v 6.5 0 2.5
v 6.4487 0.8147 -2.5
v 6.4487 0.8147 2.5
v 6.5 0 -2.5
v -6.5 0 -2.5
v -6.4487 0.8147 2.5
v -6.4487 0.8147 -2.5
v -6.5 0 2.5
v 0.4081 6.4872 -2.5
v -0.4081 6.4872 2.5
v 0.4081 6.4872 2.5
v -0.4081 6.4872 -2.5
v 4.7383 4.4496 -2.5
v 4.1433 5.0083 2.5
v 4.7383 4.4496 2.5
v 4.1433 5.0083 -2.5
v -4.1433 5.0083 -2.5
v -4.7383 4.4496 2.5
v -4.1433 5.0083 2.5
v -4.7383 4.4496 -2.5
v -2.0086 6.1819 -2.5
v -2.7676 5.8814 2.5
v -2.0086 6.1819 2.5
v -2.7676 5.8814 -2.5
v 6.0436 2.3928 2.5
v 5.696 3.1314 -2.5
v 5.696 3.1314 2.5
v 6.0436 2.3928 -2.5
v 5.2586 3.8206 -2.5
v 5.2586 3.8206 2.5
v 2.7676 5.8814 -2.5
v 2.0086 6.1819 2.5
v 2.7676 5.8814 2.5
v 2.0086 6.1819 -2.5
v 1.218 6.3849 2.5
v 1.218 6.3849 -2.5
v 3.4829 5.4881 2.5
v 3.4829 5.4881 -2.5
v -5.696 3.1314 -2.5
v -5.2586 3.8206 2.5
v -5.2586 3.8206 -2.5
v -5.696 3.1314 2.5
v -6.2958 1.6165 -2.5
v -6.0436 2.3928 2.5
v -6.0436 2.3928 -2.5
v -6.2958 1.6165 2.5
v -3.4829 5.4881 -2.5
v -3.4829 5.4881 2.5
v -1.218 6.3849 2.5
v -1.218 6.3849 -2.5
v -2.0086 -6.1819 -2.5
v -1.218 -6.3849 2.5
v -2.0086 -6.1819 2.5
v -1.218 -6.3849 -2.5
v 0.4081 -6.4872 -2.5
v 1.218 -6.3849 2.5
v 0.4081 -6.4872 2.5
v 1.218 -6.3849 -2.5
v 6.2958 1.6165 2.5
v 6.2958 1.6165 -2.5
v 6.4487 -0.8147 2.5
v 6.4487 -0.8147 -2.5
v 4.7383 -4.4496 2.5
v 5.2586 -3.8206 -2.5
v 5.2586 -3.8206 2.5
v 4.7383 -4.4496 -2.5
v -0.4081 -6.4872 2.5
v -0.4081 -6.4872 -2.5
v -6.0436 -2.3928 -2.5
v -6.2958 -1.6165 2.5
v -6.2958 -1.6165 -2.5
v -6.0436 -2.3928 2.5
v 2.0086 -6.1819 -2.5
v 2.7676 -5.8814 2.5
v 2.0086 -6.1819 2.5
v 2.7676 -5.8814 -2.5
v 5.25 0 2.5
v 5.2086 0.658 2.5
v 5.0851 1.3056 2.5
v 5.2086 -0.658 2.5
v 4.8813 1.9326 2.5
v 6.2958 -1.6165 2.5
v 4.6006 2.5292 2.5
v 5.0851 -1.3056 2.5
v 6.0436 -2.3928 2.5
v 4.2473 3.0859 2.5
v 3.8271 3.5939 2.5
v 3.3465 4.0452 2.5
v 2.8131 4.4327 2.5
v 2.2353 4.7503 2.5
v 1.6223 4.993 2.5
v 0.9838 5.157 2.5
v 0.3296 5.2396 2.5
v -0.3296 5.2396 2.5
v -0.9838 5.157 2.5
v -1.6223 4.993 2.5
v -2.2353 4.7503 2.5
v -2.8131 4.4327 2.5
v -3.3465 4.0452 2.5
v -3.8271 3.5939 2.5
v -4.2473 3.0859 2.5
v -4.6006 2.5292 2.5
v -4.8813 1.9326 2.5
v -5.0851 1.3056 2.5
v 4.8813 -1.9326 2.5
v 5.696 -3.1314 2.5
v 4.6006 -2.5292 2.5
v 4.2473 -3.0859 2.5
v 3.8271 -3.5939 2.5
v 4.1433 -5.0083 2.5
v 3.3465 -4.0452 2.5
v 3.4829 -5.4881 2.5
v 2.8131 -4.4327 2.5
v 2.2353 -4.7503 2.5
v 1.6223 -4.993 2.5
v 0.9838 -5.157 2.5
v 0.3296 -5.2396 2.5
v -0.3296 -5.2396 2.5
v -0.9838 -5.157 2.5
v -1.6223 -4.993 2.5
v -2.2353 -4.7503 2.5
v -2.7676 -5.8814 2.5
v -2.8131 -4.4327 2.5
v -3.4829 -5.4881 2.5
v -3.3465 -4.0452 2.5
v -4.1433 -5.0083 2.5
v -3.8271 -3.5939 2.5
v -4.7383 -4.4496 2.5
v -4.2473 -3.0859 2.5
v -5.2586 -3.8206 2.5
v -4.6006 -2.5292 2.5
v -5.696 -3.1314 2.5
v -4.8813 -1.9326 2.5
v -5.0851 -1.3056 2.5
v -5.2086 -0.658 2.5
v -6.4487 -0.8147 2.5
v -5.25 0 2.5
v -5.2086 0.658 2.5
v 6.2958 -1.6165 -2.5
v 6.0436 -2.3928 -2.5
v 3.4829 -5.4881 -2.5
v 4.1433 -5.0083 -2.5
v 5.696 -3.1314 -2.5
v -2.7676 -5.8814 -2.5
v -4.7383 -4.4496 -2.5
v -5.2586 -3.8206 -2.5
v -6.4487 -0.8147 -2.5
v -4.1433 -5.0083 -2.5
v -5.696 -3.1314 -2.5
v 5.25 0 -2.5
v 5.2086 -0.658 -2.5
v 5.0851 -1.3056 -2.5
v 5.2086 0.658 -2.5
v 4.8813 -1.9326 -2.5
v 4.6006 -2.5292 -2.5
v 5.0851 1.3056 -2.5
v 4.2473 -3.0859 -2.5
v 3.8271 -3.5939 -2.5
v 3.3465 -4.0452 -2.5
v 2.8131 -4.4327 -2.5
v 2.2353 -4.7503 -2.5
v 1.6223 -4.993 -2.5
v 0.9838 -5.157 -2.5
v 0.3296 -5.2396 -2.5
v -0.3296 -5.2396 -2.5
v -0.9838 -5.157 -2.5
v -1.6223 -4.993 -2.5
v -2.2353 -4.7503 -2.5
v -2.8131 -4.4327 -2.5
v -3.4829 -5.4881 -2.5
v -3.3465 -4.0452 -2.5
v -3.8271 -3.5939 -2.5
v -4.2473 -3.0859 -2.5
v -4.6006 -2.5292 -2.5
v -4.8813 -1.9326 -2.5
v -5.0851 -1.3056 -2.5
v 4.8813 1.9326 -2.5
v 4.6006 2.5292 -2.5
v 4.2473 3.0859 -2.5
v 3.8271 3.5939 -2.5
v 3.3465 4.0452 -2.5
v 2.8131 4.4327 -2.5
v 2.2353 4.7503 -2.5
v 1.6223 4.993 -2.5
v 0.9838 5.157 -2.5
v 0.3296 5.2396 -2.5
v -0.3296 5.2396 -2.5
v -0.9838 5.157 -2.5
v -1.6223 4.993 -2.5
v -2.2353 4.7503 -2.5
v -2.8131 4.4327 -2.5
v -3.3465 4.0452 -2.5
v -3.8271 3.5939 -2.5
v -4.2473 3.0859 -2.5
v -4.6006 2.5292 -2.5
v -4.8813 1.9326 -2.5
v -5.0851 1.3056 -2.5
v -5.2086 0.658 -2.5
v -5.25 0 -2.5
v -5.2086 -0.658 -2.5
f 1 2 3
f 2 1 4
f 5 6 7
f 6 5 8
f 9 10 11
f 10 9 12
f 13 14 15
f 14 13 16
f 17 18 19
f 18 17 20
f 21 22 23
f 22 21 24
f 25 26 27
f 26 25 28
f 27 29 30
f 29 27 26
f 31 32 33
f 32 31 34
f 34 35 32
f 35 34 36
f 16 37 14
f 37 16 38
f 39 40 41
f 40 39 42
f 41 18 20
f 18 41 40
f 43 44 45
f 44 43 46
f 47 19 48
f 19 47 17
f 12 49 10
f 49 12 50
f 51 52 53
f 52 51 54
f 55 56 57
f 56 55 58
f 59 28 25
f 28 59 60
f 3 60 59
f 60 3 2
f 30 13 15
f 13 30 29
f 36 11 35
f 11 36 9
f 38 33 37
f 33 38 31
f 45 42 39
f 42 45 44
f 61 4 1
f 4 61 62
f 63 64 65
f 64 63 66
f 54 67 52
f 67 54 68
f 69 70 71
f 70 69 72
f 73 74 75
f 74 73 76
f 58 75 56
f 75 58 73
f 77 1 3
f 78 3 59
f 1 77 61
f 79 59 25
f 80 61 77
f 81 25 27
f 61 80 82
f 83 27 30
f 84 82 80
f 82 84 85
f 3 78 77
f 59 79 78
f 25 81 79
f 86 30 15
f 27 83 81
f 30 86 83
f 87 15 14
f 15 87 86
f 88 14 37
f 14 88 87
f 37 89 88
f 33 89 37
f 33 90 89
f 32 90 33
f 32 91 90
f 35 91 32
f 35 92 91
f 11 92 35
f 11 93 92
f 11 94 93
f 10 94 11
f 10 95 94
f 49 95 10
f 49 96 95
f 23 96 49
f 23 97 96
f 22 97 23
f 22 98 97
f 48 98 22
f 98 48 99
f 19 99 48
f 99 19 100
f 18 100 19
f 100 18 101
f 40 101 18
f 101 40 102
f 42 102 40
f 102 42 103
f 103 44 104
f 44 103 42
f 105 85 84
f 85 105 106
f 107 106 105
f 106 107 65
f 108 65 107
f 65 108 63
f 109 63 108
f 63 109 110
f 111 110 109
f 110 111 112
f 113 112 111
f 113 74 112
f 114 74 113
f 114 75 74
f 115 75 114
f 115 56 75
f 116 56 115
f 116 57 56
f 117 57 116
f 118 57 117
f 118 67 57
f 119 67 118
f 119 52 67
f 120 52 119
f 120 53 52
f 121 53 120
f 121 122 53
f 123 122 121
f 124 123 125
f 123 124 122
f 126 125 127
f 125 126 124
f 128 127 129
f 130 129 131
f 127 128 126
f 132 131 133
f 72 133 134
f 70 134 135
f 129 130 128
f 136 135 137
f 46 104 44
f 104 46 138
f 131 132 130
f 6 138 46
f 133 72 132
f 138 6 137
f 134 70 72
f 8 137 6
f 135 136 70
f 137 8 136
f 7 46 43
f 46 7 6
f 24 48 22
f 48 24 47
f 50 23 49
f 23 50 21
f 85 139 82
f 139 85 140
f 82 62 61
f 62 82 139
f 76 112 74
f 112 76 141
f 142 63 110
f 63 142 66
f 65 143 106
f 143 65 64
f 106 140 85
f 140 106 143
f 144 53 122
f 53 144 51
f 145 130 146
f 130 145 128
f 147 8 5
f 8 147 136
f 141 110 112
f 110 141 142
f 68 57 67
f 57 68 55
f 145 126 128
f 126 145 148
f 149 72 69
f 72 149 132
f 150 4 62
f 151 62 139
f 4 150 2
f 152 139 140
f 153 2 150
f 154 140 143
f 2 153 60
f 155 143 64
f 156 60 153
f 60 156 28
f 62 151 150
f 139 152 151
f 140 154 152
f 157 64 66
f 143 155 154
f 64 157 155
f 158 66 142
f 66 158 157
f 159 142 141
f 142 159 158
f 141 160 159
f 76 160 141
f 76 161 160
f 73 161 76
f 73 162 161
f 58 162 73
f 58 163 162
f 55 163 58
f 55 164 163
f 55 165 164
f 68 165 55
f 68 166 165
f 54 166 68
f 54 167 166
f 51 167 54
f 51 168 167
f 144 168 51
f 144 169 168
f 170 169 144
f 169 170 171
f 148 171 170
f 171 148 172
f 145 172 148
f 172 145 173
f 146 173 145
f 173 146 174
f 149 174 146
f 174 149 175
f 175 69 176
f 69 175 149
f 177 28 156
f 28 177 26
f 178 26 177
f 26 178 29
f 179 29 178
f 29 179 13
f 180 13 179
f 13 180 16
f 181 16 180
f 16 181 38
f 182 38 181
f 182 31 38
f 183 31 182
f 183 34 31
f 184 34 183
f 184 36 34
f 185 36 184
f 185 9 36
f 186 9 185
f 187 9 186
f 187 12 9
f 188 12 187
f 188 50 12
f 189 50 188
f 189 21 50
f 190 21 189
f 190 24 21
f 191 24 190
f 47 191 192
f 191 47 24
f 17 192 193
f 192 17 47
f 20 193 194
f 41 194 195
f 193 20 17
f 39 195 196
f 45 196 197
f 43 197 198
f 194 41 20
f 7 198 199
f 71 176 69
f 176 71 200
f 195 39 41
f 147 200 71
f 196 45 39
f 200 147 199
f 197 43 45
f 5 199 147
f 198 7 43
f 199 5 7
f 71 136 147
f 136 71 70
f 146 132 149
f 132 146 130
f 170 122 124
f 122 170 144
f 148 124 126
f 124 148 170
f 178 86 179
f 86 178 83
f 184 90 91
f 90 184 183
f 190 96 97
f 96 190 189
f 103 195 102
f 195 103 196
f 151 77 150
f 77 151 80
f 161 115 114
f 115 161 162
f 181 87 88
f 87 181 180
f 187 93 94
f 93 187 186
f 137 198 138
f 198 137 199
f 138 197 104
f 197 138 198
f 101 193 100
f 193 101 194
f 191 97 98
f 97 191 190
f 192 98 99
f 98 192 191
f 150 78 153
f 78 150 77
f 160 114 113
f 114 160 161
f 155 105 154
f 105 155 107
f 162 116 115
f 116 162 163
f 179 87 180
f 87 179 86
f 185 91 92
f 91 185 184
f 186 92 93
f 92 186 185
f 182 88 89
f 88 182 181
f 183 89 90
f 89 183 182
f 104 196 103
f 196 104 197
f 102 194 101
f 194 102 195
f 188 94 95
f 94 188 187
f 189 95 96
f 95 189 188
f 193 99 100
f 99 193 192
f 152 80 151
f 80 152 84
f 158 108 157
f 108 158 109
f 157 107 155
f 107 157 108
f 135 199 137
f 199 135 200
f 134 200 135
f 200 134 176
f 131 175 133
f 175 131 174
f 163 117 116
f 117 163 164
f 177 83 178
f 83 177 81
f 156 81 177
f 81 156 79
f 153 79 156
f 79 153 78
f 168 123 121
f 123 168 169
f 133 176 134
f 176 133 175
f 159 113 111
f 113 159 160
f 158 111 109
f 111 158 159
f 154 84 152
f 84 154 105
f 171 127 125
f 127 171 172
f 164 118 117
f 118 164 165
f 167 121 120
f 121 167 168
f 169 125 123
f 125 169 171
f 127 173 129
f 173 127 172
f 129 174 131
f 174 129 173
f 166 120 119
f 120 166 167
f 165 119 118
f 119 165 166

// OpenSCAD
$fn = 50;


difference() {
	union() {
		translate(v = [0, 0, -2.5000000000]) {
			cylinder(h = 5, r = 6.5000000000);
		}
	}
	union() {
		translate(v = [0, 0, -100.0000000000]) {
			cylinder(h = 200, r = 5.2500000000);
		}
	}
}
